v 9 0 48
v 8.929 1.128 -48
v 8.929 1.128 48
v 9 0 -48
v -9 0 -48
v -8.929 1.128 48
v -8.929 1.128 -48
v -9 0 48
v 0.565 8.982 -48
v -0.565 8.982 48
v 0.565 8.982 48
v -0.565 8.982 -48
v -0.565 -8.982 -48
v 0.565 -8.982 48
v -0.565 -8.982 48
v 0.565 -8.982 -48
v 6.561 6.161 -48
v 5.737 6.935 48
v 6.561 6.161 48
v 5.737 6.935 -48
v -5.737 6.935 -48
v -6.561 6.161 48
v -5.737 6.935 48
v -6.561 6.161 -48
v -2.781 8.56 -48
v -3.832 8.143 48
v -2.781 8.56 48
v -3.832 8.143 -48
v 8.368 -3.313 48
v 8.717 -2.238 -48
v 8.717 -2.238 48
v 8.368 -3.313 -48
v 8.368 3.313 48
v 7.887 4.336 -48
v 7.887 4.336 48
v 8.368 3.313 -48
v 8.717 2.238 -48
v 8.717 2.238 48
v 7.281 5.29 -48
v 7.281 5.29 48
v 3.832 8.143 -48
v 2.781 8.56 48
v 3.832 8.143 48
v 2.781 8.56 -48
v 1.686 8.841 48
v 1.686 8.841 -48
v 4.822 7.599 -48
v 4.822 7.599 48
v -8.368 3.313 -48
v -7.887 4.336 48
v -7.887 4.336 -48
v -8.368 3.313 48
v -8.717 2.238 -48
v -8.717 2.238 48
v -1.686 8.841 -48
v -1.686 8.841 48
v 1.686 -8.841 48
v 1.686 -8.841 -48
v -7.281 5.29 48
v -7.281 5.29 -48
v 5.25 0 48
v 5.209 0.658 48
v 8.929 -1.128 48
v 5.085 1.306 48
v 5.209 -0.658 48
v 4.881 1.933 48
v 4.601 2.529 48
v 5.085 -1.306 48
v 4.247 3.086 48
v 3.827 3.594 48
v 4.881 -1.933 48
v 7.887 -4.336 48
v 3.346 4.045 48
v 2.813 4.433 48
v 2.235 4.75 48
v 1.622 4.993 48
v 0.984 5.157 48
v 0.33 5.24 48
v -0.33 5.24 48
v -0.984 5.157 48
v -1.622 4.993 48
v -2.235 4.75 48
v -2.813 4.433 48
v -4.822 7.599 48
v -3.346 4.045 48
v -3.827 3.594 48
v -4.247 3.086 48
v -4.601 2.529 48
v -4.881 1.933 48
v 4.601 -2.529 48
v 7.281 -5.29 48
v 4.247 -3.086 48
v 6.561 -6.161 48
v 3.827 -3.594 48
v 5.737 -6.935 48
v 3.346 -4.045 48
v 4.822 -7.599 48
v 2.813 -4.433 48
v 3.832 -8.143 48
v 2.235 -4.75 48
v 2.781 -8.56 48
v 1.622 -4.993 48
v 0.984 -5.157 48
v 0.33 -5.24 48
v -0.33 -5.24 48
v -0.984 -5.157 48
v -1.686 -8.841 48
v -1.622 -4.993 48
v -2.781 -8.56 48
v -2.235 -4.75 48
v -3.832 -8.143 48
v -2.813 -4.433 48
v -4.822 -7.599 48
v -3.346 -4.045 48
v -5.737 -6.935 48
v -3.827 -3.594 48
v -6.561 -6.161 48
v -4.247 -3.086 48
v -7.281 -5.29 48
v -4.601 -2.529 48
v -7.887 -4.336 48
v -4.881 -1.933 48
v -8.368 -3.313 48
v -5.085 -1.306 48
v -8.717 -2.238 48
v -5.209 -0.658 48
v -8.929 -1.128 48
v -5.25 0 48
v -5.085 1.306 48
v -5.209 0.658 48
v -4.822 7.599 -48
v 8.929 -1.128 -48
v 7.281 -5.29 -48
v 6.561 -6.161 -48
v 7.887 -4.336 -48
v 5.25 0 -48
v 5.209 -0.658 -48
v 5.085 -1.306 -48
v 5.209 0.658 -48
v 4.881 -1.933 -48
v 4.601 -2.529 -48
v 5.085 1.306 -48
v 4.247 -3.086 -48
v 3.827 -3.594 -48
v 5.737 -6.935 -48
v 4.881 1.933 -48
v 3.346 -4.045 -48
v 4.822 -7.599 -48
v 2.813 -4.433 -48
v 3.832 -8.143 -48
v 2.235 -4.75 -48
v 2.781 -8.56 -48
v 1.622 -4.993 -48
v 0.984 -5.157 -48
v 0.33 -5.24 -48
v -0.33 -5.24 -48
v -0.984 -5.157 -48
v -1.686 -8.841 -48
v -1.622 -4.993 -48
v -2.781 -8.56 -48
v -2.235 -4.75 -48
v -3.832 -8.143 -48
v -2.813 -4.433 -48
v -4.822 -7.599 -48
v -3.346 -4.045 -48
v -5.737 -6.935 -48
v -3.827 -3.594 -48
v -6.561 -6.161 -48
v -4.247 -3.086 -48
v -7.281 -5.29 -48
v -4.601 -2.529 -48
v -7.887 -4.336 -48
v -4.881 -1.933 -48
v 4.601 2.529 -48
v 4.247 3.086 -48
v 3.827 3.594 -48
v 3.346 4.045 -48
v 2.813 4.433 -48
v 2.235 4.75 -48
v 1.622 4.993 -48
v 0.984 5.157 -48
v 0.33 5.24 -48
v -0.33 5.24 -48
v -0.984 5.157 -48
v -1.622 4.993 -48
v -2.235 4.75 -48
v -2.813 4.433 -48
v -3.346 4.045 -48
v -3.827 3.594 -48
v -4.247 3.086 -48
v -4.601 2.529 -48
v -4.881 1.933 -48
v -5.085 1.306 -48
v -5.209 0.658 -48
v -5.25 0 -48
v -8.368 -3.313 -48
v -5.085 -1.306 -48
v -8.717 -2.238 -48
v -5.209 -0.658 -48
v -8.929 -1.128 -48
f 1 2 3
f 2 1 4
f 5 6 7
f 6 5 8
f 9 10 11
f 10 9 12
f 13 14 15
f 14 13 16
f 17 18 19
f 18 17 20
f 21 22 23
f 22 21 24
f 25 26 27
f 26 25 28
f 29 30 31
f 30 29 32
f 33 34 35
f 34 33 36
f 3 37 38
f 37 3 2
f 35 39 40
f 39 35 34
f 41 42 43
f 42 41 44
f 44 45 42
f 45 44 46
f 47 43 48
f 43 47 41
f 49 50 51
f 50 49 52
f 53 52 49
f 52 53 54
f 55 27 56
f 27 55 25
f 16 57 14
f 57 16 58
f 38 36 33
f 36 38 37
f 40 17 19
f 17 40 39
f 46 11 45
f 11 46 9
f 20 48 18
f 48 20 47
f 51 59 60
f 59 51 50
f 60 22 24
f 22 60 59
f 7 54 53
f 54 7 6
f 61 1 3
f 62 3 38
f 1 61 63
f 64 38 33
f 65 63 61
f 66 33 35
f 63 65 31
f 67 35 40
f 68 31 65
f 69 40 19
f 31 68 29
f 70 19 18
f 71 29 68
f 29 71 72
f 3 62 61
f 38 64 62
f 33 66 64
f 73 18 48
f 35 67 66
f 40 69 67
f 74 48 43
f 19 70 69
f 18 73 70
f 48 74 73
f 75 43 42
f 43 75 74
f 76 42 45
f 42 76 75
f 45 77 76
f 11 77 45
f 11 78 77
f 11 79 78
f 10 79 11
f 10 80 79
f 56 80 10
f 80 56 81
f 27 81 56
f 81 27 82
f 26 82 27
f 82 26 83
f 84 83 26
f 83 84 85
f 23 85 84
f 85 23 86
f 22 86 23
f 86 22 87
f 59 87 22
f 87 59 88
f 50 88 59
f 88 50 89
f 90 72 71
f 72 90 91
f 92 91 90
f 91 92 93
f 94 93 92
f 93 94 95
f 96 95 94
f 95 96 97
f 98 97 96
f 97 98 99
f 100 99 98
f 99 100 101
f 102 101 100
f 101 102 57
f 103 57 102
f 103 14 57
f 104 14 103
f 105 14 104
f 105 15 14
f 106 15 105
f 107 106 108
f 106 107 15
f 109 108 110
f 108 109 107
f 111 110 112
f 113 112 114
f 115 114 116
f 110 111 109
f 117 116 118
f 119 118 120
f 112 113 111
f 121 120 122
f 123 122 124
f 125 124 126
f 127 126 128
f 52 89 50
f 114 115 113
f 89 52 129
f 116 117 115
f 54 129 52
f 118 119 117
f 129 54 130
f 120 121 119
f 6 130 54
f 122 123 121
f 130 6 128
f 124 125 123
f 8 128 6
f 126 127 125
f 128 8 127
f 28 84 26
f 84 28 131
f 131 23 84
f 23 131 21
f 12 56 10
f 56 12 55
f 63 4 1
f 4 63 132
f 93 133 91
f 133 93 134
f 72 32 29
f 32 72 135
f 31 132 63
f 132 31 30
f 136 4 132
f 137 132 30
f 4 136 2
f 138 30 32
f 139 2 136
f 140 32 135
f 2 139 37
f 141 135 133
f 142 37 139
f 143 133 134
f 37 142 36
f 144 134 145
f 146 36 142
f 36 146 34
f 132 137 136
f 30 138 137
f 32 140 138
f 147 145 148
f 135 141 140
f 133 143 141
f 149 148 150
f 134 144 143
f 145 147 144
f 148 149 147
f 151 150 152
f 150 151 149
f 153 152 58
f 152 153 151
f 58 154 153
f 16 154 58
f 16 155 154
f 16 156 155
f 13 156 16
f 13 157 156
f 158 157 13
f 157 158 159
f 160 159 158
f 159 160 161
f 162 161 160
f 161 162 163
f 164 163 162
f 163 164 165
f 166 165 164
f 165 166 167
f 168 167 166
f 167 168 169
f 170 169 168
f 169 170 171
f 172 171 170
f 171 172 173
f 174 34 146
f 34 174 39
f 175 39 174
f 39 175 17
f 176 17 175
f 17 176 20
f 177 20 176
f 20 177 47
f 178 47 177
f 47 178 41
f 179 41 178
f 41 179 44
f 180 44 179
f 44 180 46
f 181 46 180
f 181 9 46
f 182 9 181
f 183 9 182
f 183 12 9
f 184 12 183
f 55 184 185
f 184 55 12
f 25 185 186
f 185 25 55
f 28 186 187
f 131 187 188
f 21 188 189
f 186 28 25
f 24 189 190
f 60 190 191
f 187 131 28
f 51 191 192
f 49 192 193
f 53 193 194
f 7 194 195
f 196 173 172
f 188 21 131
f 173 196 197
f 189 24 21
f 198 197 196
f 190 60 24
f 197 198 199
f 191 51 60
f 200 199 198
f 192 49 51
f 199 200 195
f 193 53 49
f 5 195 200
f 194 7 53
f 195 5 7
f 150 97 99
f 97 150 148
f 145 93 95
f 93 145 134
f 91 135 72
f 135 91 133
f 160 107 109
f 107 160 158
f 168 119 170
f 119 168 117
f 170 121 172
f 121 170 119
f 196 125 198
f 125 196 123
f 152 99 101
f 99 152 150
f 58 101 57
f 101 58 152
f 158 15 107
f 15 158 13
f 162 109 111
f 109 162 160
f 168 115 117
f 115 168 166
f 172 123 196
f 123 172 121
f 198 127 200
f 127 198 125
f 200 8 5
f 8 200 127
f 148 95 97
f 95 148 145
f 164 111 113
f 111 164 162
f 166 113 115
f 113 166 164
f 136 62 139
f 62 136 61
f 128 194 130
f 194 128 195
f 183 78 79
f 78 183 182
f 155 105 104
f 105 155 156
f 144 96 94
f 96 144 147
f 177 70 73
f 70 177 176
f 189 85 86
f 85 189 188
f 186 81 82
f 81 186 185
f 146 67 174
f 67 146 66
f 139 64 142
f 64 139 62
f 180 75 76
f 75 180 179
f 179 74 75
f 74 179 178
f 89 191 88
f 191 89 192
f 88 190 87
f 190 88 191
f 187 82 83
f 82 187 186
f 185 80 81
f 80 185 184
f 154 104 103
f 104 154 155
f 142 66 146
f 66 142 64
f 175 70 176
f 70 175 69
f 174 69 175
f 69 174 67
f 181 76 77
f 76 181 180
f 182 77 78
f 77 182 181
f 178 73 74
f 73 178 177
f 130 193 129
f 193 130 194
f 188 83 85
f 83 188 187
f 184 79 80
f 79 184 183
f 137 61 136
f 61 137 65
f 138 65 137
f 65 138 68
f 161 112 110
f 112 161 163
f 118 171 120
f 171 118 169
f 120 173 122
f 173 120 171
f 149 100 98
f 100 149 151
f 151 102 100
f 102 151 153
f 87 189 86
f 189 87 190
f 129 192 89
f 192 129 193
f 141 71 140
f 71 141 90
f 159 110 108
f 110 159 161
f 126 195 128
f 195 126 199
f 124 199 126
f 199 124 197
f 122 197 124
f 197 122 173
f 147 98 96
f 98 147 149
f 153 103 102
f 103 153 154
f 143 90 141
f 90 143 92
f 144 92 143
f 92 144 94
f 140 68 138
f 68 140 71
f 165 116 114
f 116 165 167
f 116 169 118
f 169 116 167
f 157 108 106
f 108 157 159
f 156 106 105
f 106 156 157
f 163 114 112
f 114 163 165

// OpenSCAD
$fn = 50;


difference() {
	union() {
		translate(v = [0, 0, -48.0000000000]) {
			cylinder(h = 96, r = 9.0000000000);
		}
	}
	union() {
		translate(v = [0, 0, -100.0000000000]) {
			cylinder(h = 200, r = 5.2500000000);
		}
	}
}
